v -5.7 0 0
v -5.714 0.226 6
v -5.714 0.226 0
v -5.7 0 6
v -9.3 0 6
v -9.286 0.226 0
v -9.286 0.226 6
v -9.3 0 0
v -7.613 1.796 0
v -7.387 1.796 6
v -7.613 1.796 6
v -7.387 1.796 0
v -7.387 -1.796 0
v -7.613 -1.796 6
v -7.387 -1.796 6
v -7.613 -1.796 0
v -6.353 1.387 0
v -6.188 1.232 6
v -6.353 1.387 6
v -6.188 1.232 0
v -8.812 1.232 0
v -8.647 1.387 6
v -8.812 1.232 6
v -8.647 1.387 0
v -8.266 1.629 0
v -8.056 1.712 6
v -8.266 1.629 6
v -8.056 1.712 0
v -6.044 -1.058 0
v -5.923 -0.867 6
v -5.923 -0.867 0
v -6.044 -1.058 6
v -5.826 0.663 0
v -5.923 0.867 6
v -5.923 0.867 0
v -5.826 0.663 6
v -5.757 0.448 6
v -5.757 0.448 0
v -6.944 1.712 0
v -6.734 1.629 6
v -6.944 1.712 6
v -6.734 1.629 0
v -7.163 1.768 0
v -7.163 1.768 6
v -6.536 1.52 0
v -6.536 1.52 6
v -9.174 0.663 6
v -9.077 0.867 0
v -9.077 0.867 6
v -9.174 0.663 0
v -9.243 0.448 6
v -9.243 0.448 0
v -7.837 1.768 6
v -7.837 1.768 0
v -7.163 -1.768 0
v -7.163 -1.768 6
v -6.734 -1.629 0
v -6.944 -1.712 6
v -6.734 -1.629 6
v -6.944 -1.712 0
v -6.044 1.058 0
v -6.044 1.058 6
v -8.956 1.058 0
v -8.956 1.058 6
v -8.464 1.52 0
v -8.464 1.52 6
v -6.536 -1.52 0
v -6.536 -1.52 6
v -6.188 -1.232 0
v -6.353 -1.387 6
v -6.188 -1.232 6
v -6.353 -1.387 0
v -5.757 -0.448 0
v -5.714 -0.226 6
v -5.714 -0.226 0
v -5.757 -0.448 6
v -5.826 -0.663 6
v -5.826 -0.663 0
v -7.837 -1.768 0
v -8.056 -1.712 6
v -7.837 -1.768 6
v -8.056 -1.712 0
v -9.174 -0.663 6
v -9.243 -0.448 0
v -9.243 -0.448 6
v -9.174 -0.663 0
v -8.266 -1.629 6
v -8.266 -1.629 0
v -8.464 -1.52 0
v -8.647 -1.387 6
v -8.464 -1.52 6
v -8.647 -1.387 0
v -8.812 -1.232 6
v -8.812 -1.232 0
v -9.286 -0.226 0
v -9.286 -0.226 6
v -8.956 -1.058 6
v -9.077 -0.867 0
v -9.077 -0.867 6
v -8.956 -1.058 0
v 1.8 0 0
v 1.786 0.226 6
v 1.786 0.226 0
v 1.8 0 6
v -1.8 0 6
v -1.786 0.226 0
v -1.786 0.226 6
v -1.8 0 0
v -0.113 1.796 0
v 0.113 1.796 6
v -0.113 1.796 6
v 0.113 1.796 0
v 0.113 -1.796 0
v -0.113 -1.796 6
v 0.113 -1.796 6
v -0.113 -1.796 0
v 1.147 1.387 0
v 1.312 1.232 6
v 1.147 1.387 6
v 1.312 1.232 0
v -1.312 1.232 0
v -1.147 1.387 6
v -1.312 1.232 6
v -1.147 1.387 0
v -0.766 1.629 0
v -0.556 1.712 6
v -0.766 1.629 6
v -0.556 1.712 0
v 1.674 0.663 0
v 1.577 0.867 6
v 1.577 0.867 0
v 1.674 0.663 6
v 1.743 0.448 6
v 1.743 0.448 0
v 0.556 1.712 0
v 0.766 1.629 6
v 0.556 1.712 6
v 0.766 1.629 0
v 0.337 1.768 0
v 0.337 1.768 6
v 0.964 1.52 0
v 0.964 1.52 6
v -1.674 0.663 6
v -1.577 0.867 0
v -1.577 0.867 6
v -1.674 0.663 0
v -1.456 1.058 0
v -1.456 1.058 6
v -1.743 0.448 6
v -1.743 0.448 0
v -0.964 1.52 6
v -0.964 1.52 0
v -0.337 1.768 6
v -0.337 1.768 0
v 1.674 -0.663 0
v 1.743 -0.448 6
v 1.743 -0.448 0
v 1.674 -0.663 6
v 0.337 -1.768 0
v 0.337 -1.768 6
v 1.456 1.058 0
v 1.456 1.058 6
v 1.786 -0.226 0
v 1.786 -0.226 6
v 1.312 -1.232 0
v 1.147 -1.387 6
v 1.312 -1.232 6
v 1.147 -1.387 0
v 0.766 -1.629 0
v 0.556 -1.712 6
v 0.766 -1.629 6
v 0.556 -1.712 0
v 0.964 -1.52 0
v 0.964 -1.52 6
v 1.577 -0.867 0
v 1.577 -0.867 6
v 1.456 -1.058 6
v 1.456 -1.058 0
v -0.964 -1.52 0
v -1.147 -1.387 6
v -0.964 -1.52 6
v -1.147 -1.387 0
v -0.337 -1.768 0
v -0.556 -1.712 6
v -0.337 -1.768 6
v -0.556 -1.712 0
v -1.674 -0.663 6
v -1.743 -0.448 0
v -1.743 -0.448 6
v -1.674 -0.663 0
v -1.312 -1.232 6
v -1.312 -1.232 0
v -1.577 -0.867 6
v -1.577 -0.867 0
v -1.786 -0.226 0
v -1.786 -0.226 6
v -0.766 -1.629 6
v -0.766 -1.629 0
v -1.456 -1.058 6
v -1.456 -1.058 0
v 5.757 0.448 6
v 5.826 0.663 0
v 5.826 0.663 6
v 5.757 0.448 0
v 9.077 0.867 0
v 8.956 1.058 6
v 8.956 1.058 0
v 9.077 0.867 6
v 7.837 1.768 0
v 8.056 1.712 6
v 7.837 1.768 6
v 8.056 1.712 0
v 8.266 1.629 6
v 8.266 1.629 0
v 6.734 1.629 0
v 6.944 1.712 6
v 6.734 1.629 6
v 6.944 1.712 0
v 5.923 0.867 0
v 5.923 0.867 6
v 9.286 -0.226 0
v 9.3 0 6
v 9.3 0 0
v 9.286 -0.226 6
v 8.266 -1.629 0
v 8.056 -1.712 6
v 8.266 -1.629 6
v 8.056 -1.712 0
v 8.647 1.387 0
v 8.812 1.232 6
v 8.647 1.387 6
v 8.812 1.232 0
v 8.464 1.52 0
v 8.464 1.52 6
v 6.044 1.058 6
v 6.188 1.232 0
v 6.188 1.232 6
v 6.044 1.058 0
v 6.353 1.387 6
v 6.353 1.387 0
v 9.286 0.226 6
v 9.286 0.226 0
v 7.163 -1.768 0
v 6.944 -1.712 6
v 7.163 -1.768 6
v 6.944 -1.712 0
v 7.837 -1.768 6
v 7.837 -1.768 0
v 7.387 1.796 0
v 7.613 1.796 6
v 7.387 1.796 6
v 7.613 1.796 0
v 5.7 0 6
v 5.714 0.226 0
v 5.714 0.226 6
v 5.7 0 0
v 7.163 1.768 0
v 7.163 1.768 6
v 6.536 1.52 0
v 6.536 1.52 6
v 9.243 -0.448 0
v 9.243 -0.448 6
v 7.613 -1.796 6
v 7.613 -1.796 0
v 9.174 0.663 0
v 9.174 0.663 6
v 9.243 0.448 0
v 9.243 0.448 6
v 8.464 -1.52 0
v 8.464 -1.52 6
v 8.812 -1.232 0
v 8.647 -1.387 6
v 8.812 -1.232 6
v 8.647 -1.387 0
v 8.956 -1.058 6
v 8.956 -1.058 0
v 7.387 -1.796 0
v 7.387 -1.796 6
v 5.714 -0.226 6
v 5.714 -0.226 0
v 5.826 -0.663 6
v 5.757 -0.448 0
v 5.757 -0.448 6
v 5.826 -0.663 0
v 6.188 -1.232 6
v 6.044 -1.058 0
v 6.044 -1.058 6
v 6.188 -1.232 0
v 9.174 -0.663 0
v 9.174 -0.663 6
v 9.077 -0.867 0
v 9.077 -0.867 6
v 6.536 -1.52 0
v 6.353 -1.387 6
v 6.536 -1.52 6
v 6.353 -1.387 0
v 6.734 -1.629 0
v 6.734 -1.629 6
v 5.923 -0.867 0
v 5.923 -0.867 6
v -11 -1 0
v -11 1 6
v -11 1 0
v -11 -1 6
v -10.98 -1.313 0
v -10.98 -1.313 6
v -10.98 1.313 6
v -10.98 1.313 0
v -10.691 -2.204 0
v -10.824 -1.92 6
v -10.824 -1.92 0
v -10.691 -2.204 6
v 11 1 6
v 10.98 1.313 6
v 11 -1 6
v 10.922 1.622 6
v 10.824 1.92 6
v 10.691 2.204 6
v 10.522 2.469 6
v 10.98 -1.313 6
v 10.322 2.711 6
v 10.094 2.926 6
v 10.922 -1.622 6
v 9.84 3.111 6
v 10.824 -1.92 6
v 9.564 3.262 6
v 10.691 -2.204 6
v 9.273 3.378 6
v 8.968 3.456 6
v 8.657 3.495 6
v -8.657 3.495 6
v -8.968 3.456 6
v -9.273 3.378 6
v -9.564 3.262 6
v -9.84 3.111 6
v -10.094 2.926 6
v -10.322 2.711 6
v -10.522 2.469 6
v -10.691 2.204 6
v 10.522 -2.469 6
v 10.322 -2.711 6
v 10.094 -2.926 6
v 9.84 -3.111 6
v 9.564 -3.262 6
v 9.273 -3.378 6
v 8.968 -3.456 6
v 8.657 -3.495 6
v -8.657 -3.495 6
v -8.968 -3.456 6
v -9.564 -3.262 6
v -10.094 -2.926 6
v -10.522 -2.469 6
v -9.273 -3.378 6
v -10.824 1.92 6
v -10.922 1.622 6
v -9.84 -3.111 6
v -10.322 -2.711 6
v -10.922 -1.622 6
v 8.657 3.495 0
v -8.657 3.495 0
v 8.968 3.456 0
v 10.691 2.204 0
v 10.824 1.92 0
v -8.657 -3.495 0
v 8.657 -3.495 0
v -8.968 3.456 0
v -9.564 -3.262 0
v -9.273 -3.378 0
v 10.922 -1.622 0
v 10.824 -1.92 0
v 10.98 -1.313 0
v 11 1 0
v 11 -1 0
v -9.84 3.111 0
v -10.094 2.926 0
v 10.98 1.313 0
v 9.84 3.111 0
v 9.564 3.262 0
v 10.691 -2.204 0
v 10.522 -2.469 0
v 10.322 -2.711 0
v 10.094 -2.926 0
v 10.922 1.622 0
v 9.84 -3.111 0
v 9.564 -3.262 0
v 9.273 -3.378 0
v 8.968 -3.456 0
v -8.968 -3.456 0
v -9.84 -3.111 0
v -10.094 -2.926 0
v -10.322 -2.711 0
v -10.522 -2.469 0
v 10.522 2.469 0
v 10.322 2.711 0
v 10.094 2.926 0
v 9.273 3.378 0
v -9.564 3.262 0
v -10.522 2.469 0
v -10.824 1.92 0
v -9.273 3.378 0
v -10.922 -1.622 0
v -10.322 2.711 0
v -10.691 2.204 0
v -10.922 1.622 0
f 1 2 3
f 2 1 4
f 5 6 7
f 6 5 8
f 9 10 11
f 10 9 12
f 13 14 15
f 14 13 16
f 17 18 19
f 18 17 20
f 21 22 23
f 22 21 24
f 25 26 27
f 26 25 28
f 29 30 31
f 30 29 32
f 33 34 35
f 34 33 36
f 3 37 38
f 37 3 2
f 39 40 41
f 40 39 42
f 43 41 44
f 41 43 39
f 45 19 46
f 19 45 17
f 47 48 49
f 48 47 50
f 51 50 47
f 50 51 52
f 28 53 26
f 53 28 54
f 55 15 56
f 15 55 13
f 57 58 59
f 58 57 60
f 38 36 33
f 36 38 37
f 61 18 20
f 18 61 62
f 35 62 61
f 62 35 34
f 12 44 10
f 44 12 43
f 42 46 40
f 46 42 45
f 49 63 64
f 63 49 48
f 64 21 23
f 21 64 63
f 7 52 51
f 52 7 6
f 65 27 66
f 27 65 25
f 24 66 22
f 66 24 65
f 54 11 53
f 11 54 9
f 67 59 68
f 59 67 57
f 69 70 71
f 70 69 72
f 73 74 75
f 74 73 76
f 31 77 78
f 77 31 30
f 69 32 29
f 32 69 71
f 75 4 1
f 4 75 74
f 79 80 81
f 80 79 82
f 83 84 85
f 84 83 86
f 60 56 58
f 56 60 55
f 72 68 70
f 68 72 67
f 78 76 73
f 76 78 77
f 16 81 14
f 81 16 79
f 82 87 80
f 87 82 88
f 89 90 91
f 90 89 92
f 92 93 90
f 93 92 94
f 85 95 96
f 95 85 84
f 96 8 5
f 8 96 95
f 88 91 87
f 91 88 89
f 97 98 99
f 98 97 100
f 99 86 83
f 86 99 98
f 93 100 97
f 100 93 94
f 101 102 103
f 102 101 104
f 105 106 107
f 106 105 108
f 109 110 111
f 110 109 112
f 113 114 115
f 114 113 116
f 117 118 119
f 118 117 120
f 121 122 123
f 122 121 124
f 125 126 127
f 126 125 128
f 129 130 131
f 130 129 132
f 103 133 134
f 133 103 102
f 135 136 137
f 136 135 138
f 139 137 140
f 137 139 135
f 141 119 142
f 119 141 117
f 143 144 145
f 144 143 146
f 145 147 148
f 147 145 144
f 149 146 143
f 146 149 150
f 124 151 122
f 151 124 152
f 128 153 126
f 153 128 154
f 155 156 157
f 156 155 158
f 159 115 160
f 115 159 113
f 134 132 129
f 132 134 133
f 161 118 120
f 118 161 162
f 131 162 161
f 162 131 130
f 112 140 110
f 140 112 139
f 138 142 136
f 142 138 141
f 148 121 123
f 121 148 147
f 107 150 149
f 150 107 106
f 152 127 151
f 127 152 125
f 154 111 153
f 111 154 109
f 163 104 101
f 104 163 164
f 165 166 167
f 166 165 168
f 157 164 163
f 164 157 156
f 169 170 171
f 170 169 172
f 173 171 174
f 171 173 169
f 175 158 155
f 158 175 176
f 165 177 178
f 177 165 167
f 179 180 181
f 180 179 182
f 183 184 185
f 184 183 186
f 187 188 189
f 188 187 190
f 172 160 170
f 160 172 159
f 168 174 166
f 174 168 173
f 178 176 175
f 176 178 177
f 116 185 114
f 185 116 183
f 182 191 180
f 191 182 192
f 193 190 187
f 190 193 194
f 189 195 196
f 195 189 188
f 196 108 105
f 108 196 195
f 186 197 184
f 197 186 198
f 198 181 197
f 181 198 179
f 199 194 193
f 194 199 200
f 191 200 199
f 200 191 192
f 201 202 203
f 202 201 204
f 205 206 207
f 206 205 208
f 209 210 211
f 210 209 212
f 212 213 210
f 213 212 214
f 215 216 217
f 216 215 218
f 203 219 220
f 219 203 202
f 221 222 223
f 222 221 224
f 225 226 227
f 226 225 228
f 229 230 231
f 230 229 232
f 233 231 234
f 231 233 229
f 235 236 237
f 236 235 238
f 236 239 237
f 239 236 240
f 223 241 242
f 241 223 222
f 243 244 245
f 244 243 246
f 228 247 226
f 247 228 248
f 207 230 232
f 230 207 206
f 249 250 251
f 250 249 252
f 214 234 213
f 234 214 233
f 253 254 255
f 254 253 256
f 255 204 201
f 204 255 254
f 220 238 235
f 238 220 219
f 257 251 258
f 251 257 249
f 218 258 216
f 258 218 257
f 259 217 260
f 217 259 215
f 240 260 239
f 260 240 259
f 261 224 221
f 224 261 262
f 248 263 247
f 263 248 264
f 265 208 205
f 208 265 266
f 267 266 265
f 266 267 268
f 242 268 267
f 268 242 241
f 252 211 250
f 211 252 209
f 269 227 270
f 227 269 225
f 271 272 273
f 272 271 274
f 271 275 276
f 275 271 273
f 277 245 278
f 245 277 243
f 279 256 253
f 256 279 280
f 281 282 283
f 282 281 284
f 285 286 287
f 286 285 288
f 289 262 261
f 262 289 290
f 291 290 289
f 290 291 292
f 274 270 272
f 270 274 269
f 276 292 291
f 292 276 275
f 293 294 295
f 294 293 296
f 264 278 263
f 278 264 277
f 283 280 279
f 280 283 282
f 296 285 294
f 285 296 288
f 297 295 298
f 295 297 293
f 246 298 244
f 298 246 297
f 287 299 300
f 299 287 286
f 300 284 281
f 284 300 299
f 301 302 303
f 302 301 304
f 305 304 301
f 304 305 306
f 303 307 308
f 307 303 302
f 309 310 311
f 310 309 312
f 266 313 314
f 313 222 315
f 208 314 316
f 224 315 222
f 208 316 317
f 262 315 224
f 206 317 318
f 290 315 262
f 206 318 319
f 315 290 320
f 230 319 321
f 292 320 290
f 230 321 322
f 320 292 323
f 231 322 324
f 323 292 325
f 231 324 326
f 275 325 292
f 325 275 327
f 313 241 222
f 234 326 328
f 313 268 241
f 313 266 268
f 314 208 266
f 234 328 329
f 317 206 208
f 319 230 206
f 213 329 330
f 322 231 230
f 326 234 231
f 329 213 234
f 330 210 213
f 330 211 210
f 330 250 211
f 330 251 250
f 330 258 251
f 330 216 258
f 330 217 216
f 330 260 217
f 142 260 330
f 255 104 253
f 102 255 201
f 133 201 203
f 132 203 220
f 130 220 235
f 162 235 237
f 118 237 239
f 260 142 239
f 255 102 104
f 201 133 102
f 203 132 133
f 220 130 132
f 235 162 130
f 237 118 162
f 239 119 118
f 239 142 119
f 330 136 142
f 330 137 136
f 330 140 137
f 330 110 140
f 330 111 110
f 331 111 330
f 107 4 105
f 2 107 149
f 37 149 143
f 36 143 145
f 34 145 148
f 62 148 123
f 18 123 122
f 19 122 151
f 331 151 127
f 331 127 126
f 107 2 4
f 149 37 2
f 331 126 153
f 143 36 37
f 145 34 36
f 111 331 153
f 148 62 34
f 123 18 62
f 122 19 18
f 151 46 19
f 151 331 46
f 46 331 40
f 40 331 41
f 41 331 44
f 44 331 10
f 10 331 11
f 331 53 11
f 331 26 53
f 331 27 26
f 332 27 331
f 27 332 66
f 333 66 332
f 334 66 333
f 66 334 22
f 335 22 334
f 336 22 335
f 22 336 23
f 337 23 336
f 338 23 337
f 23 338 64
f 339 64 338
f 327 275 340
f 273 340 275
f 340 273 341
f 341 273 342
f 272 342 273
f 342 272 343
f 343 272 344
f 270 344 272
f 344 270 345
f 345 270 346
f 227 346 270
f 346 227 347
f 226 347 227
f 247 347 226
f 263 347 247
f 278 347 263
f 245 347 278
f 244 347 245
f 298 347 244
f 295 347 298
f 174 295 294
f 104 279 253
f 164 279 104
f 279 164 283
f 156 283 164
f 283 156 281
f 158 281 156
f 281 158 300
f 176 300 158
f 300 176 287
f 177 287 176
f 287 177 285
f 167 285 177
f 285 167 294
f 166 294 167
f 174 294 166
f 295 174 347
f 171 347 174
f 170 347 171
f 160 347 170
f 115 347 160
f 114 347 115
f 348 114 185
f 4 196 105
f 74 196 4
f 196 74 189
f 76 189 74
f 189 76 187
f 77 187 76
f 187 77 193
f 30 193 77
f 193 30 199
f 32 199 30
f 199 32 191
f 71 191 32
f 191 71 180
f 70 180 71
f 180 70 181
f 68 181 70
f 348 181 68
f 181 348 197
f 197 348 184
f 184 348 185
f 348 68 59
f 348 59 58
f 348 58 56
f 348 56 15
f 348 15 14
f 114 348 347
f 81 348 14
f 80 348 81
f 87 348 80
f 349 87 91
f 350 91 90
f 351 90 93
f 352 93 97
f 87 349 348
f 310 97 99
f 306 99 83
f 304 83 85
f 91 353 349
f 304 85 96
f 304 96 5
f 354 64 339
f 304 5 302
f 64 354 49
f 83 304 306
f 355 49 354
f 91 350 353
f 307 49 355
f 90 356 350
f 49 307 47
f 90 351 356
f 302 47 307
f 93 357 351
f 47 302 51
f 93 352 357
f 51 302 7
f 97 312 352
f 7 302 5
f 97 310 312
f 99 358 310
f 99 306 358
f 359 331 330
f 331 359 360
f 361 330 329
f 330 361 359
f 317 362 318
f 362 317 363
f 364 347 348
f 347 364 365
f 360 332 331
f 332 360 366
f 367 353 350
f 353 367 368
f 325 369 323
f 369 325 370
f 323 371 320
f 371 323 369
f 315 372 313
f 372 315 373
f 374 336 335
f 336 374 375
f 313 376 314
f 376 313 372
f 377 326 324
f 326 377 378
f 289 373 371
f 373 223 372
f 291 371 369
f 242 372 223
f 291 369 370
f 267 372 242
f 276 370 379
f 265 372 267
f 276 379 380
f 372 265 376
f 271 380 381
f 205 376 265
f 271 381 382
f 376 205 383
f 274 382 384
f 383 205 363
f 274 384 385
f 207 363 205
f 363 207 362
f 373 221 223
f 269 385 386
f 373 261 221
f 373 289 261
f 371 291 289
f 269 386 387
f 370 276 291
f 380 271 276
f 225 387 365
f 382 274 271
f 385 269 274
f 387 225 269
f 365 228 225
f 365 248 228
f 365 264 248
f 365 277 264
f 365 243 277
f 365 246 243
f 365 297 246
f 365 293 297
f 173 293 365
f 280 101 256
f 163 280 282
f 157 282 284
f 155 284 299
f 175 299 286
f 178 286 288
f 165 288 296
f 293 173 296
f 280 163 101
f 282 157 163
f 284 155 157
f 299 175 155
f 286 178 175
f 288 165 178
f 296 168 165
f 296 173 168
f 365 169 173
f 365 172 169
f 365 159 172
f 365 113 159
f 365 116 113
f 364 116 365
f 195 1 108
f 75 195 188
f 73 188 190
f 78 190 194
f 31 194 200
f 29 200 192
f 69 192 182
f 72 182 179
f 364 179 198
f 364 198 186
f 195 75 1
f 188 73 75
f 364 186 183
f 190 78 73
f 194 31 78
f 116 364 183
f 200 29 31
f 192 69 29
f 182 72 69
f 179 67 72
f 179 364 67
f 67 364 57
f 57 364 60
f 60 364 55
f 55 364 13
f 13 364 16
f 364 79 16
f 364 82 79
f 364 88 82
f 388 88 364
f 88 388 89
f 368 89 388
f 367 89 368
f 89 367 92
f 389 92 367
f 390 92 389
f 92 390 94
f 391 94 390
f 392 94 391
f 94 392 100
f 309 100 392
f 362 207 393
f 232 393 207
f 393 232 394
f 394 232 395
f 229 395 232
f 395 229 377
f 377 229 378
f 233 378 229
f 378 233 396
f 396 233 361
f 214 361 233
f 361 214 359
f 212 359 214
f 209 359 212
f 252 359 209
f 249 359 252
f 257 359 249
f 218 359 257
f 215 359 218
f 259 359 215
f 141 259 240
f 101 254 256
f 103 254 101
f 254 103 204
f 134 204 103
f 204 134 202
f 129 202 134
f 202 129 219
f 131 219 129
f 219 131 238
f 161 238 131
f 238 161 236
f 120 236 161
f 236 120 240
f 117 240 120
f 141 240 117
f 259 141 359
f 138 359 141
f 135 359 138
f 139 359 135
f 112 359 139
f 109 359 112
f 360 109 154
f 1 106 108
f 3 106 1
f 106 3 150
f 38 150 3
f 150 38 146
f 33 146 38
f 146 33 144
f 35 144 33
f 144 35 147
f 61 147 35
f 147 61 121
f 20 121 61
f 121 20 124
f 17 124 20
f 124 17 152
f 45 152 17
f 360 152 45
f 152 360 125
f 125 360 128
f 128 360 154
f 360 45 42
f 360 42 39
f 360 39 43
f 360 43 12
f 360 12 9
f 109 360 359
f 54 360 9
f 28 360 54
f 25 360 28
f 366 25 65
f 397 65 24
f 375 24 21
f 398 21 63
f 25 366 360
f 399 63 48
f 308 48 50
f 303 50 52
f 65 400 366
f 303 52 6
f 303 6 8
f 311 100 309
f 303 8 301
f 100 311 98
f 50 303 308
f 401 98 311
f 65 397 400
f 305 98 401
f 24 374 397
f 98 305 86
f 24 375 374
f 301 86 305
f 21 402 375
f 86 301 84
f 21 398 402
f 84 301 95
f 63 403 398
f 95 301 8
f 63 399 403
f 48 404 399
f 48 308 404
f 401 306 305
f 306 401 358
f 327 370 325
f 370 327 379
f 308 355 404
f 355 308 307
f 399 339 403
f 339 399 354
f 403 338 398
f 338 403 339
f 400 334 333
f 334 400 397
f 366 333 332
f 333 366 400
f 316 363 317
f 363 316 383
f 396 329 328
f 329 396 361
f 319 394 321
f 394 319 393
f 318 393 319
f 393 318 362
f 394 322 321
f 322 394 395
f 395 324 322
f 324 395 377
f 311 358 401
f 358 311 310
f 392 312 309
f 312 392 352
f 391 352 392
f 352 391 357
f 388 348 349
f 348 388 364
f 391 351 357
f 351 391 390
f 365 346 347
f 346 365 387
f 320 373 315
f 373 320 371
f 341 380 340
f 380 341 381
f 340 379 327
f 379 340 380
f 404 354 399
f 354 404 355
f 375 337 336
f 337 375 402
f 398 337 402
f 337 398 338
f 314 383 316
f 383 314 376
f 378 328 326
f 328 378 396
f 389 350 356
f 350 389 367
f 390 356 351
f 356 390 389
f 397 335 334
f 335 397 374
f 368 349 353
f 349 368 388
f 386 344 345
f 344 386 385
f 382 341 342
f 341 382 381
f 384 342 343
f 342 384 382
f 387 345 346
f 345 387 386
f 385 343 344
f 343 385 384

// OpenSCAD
$fn = 50;


difference() {
	union() {
		translate(v = [0, 0, 0]) {
			rotate(a = [0, 0, 0]) {
				hull() {
					translate(v = [-8.5000000000, 1.0000000000, 0]) {
						rotate(a = [0, 0, 0]) {
							translate(v = [0, 0, 0]) {
								rotate(a = [0, 0, 0]) {
									cylinder(h = 6, r = 2.5000000000);
								}
							}
						}
					}
					translate(v = [8.5000000000, 1.0000000000, 0]) {
						rotate(a = [0, 0, 0]) {
							translate(v = [0, 0, 0]) {
								rotate(a = [0, 0, 0]) {
									cylinder(h = 6, r = 2.5000000000);
								}
							}
						}
					}
					translate(v = [-8.5000000000, -1.0000000000, 0]) {
						rotate(a = [0, 0, 0]) {
							translate(v = [0, 0, 0]) {
								rotate(a = [0, 0, 0]) {
									cylinder(h = 6, r = 2.5000000000);
								}
							}
						}
					}
					translate(v = [8.5000000000, -1.0000000000, 0]) {
						rotate(a = [0, 0, 0]) {
							translate(v = [0, 0, 0]) {
								rotate(a = [0, 0, 0]) {
									cylinder(h = 6, r = 2.5000000000);
								}
							}
						}
					}
				}
			}
		}
	}
	union() {
		translate(v = [-7.5000000000, 0.0000000000, 0]) {
			rotate(a = [0, 0, 0]) {
				translate(v = [0, 0, -50]) {
					rotate(a = [0, 0, 0]) {
						cylinder(h = 100, r = 1.8000000000);
					}
				}
			}
		}
		translate(v = [0.0000000000, 0.0000000000, 0]) {
			rotate(a = [0, 0, 0]) {
				translate(v = [0, 0, -50]) {
					rotate(a = [0, 0, 0]) {
						cylinder(h = 100, r = 1.8000000000);
					}
				}
			}
		}
		translate(v = [7.5000000000, 0.0000000000, 0]) {
			rotate(a = [0, 0, 0]) {
				translate(v = [0, 0, -50]) {
					rotate(a = [0, 0, 0]) {
						cylinder(h = 100, r = 1.8000000000);
					}
				}
			}
		}
	}
}
